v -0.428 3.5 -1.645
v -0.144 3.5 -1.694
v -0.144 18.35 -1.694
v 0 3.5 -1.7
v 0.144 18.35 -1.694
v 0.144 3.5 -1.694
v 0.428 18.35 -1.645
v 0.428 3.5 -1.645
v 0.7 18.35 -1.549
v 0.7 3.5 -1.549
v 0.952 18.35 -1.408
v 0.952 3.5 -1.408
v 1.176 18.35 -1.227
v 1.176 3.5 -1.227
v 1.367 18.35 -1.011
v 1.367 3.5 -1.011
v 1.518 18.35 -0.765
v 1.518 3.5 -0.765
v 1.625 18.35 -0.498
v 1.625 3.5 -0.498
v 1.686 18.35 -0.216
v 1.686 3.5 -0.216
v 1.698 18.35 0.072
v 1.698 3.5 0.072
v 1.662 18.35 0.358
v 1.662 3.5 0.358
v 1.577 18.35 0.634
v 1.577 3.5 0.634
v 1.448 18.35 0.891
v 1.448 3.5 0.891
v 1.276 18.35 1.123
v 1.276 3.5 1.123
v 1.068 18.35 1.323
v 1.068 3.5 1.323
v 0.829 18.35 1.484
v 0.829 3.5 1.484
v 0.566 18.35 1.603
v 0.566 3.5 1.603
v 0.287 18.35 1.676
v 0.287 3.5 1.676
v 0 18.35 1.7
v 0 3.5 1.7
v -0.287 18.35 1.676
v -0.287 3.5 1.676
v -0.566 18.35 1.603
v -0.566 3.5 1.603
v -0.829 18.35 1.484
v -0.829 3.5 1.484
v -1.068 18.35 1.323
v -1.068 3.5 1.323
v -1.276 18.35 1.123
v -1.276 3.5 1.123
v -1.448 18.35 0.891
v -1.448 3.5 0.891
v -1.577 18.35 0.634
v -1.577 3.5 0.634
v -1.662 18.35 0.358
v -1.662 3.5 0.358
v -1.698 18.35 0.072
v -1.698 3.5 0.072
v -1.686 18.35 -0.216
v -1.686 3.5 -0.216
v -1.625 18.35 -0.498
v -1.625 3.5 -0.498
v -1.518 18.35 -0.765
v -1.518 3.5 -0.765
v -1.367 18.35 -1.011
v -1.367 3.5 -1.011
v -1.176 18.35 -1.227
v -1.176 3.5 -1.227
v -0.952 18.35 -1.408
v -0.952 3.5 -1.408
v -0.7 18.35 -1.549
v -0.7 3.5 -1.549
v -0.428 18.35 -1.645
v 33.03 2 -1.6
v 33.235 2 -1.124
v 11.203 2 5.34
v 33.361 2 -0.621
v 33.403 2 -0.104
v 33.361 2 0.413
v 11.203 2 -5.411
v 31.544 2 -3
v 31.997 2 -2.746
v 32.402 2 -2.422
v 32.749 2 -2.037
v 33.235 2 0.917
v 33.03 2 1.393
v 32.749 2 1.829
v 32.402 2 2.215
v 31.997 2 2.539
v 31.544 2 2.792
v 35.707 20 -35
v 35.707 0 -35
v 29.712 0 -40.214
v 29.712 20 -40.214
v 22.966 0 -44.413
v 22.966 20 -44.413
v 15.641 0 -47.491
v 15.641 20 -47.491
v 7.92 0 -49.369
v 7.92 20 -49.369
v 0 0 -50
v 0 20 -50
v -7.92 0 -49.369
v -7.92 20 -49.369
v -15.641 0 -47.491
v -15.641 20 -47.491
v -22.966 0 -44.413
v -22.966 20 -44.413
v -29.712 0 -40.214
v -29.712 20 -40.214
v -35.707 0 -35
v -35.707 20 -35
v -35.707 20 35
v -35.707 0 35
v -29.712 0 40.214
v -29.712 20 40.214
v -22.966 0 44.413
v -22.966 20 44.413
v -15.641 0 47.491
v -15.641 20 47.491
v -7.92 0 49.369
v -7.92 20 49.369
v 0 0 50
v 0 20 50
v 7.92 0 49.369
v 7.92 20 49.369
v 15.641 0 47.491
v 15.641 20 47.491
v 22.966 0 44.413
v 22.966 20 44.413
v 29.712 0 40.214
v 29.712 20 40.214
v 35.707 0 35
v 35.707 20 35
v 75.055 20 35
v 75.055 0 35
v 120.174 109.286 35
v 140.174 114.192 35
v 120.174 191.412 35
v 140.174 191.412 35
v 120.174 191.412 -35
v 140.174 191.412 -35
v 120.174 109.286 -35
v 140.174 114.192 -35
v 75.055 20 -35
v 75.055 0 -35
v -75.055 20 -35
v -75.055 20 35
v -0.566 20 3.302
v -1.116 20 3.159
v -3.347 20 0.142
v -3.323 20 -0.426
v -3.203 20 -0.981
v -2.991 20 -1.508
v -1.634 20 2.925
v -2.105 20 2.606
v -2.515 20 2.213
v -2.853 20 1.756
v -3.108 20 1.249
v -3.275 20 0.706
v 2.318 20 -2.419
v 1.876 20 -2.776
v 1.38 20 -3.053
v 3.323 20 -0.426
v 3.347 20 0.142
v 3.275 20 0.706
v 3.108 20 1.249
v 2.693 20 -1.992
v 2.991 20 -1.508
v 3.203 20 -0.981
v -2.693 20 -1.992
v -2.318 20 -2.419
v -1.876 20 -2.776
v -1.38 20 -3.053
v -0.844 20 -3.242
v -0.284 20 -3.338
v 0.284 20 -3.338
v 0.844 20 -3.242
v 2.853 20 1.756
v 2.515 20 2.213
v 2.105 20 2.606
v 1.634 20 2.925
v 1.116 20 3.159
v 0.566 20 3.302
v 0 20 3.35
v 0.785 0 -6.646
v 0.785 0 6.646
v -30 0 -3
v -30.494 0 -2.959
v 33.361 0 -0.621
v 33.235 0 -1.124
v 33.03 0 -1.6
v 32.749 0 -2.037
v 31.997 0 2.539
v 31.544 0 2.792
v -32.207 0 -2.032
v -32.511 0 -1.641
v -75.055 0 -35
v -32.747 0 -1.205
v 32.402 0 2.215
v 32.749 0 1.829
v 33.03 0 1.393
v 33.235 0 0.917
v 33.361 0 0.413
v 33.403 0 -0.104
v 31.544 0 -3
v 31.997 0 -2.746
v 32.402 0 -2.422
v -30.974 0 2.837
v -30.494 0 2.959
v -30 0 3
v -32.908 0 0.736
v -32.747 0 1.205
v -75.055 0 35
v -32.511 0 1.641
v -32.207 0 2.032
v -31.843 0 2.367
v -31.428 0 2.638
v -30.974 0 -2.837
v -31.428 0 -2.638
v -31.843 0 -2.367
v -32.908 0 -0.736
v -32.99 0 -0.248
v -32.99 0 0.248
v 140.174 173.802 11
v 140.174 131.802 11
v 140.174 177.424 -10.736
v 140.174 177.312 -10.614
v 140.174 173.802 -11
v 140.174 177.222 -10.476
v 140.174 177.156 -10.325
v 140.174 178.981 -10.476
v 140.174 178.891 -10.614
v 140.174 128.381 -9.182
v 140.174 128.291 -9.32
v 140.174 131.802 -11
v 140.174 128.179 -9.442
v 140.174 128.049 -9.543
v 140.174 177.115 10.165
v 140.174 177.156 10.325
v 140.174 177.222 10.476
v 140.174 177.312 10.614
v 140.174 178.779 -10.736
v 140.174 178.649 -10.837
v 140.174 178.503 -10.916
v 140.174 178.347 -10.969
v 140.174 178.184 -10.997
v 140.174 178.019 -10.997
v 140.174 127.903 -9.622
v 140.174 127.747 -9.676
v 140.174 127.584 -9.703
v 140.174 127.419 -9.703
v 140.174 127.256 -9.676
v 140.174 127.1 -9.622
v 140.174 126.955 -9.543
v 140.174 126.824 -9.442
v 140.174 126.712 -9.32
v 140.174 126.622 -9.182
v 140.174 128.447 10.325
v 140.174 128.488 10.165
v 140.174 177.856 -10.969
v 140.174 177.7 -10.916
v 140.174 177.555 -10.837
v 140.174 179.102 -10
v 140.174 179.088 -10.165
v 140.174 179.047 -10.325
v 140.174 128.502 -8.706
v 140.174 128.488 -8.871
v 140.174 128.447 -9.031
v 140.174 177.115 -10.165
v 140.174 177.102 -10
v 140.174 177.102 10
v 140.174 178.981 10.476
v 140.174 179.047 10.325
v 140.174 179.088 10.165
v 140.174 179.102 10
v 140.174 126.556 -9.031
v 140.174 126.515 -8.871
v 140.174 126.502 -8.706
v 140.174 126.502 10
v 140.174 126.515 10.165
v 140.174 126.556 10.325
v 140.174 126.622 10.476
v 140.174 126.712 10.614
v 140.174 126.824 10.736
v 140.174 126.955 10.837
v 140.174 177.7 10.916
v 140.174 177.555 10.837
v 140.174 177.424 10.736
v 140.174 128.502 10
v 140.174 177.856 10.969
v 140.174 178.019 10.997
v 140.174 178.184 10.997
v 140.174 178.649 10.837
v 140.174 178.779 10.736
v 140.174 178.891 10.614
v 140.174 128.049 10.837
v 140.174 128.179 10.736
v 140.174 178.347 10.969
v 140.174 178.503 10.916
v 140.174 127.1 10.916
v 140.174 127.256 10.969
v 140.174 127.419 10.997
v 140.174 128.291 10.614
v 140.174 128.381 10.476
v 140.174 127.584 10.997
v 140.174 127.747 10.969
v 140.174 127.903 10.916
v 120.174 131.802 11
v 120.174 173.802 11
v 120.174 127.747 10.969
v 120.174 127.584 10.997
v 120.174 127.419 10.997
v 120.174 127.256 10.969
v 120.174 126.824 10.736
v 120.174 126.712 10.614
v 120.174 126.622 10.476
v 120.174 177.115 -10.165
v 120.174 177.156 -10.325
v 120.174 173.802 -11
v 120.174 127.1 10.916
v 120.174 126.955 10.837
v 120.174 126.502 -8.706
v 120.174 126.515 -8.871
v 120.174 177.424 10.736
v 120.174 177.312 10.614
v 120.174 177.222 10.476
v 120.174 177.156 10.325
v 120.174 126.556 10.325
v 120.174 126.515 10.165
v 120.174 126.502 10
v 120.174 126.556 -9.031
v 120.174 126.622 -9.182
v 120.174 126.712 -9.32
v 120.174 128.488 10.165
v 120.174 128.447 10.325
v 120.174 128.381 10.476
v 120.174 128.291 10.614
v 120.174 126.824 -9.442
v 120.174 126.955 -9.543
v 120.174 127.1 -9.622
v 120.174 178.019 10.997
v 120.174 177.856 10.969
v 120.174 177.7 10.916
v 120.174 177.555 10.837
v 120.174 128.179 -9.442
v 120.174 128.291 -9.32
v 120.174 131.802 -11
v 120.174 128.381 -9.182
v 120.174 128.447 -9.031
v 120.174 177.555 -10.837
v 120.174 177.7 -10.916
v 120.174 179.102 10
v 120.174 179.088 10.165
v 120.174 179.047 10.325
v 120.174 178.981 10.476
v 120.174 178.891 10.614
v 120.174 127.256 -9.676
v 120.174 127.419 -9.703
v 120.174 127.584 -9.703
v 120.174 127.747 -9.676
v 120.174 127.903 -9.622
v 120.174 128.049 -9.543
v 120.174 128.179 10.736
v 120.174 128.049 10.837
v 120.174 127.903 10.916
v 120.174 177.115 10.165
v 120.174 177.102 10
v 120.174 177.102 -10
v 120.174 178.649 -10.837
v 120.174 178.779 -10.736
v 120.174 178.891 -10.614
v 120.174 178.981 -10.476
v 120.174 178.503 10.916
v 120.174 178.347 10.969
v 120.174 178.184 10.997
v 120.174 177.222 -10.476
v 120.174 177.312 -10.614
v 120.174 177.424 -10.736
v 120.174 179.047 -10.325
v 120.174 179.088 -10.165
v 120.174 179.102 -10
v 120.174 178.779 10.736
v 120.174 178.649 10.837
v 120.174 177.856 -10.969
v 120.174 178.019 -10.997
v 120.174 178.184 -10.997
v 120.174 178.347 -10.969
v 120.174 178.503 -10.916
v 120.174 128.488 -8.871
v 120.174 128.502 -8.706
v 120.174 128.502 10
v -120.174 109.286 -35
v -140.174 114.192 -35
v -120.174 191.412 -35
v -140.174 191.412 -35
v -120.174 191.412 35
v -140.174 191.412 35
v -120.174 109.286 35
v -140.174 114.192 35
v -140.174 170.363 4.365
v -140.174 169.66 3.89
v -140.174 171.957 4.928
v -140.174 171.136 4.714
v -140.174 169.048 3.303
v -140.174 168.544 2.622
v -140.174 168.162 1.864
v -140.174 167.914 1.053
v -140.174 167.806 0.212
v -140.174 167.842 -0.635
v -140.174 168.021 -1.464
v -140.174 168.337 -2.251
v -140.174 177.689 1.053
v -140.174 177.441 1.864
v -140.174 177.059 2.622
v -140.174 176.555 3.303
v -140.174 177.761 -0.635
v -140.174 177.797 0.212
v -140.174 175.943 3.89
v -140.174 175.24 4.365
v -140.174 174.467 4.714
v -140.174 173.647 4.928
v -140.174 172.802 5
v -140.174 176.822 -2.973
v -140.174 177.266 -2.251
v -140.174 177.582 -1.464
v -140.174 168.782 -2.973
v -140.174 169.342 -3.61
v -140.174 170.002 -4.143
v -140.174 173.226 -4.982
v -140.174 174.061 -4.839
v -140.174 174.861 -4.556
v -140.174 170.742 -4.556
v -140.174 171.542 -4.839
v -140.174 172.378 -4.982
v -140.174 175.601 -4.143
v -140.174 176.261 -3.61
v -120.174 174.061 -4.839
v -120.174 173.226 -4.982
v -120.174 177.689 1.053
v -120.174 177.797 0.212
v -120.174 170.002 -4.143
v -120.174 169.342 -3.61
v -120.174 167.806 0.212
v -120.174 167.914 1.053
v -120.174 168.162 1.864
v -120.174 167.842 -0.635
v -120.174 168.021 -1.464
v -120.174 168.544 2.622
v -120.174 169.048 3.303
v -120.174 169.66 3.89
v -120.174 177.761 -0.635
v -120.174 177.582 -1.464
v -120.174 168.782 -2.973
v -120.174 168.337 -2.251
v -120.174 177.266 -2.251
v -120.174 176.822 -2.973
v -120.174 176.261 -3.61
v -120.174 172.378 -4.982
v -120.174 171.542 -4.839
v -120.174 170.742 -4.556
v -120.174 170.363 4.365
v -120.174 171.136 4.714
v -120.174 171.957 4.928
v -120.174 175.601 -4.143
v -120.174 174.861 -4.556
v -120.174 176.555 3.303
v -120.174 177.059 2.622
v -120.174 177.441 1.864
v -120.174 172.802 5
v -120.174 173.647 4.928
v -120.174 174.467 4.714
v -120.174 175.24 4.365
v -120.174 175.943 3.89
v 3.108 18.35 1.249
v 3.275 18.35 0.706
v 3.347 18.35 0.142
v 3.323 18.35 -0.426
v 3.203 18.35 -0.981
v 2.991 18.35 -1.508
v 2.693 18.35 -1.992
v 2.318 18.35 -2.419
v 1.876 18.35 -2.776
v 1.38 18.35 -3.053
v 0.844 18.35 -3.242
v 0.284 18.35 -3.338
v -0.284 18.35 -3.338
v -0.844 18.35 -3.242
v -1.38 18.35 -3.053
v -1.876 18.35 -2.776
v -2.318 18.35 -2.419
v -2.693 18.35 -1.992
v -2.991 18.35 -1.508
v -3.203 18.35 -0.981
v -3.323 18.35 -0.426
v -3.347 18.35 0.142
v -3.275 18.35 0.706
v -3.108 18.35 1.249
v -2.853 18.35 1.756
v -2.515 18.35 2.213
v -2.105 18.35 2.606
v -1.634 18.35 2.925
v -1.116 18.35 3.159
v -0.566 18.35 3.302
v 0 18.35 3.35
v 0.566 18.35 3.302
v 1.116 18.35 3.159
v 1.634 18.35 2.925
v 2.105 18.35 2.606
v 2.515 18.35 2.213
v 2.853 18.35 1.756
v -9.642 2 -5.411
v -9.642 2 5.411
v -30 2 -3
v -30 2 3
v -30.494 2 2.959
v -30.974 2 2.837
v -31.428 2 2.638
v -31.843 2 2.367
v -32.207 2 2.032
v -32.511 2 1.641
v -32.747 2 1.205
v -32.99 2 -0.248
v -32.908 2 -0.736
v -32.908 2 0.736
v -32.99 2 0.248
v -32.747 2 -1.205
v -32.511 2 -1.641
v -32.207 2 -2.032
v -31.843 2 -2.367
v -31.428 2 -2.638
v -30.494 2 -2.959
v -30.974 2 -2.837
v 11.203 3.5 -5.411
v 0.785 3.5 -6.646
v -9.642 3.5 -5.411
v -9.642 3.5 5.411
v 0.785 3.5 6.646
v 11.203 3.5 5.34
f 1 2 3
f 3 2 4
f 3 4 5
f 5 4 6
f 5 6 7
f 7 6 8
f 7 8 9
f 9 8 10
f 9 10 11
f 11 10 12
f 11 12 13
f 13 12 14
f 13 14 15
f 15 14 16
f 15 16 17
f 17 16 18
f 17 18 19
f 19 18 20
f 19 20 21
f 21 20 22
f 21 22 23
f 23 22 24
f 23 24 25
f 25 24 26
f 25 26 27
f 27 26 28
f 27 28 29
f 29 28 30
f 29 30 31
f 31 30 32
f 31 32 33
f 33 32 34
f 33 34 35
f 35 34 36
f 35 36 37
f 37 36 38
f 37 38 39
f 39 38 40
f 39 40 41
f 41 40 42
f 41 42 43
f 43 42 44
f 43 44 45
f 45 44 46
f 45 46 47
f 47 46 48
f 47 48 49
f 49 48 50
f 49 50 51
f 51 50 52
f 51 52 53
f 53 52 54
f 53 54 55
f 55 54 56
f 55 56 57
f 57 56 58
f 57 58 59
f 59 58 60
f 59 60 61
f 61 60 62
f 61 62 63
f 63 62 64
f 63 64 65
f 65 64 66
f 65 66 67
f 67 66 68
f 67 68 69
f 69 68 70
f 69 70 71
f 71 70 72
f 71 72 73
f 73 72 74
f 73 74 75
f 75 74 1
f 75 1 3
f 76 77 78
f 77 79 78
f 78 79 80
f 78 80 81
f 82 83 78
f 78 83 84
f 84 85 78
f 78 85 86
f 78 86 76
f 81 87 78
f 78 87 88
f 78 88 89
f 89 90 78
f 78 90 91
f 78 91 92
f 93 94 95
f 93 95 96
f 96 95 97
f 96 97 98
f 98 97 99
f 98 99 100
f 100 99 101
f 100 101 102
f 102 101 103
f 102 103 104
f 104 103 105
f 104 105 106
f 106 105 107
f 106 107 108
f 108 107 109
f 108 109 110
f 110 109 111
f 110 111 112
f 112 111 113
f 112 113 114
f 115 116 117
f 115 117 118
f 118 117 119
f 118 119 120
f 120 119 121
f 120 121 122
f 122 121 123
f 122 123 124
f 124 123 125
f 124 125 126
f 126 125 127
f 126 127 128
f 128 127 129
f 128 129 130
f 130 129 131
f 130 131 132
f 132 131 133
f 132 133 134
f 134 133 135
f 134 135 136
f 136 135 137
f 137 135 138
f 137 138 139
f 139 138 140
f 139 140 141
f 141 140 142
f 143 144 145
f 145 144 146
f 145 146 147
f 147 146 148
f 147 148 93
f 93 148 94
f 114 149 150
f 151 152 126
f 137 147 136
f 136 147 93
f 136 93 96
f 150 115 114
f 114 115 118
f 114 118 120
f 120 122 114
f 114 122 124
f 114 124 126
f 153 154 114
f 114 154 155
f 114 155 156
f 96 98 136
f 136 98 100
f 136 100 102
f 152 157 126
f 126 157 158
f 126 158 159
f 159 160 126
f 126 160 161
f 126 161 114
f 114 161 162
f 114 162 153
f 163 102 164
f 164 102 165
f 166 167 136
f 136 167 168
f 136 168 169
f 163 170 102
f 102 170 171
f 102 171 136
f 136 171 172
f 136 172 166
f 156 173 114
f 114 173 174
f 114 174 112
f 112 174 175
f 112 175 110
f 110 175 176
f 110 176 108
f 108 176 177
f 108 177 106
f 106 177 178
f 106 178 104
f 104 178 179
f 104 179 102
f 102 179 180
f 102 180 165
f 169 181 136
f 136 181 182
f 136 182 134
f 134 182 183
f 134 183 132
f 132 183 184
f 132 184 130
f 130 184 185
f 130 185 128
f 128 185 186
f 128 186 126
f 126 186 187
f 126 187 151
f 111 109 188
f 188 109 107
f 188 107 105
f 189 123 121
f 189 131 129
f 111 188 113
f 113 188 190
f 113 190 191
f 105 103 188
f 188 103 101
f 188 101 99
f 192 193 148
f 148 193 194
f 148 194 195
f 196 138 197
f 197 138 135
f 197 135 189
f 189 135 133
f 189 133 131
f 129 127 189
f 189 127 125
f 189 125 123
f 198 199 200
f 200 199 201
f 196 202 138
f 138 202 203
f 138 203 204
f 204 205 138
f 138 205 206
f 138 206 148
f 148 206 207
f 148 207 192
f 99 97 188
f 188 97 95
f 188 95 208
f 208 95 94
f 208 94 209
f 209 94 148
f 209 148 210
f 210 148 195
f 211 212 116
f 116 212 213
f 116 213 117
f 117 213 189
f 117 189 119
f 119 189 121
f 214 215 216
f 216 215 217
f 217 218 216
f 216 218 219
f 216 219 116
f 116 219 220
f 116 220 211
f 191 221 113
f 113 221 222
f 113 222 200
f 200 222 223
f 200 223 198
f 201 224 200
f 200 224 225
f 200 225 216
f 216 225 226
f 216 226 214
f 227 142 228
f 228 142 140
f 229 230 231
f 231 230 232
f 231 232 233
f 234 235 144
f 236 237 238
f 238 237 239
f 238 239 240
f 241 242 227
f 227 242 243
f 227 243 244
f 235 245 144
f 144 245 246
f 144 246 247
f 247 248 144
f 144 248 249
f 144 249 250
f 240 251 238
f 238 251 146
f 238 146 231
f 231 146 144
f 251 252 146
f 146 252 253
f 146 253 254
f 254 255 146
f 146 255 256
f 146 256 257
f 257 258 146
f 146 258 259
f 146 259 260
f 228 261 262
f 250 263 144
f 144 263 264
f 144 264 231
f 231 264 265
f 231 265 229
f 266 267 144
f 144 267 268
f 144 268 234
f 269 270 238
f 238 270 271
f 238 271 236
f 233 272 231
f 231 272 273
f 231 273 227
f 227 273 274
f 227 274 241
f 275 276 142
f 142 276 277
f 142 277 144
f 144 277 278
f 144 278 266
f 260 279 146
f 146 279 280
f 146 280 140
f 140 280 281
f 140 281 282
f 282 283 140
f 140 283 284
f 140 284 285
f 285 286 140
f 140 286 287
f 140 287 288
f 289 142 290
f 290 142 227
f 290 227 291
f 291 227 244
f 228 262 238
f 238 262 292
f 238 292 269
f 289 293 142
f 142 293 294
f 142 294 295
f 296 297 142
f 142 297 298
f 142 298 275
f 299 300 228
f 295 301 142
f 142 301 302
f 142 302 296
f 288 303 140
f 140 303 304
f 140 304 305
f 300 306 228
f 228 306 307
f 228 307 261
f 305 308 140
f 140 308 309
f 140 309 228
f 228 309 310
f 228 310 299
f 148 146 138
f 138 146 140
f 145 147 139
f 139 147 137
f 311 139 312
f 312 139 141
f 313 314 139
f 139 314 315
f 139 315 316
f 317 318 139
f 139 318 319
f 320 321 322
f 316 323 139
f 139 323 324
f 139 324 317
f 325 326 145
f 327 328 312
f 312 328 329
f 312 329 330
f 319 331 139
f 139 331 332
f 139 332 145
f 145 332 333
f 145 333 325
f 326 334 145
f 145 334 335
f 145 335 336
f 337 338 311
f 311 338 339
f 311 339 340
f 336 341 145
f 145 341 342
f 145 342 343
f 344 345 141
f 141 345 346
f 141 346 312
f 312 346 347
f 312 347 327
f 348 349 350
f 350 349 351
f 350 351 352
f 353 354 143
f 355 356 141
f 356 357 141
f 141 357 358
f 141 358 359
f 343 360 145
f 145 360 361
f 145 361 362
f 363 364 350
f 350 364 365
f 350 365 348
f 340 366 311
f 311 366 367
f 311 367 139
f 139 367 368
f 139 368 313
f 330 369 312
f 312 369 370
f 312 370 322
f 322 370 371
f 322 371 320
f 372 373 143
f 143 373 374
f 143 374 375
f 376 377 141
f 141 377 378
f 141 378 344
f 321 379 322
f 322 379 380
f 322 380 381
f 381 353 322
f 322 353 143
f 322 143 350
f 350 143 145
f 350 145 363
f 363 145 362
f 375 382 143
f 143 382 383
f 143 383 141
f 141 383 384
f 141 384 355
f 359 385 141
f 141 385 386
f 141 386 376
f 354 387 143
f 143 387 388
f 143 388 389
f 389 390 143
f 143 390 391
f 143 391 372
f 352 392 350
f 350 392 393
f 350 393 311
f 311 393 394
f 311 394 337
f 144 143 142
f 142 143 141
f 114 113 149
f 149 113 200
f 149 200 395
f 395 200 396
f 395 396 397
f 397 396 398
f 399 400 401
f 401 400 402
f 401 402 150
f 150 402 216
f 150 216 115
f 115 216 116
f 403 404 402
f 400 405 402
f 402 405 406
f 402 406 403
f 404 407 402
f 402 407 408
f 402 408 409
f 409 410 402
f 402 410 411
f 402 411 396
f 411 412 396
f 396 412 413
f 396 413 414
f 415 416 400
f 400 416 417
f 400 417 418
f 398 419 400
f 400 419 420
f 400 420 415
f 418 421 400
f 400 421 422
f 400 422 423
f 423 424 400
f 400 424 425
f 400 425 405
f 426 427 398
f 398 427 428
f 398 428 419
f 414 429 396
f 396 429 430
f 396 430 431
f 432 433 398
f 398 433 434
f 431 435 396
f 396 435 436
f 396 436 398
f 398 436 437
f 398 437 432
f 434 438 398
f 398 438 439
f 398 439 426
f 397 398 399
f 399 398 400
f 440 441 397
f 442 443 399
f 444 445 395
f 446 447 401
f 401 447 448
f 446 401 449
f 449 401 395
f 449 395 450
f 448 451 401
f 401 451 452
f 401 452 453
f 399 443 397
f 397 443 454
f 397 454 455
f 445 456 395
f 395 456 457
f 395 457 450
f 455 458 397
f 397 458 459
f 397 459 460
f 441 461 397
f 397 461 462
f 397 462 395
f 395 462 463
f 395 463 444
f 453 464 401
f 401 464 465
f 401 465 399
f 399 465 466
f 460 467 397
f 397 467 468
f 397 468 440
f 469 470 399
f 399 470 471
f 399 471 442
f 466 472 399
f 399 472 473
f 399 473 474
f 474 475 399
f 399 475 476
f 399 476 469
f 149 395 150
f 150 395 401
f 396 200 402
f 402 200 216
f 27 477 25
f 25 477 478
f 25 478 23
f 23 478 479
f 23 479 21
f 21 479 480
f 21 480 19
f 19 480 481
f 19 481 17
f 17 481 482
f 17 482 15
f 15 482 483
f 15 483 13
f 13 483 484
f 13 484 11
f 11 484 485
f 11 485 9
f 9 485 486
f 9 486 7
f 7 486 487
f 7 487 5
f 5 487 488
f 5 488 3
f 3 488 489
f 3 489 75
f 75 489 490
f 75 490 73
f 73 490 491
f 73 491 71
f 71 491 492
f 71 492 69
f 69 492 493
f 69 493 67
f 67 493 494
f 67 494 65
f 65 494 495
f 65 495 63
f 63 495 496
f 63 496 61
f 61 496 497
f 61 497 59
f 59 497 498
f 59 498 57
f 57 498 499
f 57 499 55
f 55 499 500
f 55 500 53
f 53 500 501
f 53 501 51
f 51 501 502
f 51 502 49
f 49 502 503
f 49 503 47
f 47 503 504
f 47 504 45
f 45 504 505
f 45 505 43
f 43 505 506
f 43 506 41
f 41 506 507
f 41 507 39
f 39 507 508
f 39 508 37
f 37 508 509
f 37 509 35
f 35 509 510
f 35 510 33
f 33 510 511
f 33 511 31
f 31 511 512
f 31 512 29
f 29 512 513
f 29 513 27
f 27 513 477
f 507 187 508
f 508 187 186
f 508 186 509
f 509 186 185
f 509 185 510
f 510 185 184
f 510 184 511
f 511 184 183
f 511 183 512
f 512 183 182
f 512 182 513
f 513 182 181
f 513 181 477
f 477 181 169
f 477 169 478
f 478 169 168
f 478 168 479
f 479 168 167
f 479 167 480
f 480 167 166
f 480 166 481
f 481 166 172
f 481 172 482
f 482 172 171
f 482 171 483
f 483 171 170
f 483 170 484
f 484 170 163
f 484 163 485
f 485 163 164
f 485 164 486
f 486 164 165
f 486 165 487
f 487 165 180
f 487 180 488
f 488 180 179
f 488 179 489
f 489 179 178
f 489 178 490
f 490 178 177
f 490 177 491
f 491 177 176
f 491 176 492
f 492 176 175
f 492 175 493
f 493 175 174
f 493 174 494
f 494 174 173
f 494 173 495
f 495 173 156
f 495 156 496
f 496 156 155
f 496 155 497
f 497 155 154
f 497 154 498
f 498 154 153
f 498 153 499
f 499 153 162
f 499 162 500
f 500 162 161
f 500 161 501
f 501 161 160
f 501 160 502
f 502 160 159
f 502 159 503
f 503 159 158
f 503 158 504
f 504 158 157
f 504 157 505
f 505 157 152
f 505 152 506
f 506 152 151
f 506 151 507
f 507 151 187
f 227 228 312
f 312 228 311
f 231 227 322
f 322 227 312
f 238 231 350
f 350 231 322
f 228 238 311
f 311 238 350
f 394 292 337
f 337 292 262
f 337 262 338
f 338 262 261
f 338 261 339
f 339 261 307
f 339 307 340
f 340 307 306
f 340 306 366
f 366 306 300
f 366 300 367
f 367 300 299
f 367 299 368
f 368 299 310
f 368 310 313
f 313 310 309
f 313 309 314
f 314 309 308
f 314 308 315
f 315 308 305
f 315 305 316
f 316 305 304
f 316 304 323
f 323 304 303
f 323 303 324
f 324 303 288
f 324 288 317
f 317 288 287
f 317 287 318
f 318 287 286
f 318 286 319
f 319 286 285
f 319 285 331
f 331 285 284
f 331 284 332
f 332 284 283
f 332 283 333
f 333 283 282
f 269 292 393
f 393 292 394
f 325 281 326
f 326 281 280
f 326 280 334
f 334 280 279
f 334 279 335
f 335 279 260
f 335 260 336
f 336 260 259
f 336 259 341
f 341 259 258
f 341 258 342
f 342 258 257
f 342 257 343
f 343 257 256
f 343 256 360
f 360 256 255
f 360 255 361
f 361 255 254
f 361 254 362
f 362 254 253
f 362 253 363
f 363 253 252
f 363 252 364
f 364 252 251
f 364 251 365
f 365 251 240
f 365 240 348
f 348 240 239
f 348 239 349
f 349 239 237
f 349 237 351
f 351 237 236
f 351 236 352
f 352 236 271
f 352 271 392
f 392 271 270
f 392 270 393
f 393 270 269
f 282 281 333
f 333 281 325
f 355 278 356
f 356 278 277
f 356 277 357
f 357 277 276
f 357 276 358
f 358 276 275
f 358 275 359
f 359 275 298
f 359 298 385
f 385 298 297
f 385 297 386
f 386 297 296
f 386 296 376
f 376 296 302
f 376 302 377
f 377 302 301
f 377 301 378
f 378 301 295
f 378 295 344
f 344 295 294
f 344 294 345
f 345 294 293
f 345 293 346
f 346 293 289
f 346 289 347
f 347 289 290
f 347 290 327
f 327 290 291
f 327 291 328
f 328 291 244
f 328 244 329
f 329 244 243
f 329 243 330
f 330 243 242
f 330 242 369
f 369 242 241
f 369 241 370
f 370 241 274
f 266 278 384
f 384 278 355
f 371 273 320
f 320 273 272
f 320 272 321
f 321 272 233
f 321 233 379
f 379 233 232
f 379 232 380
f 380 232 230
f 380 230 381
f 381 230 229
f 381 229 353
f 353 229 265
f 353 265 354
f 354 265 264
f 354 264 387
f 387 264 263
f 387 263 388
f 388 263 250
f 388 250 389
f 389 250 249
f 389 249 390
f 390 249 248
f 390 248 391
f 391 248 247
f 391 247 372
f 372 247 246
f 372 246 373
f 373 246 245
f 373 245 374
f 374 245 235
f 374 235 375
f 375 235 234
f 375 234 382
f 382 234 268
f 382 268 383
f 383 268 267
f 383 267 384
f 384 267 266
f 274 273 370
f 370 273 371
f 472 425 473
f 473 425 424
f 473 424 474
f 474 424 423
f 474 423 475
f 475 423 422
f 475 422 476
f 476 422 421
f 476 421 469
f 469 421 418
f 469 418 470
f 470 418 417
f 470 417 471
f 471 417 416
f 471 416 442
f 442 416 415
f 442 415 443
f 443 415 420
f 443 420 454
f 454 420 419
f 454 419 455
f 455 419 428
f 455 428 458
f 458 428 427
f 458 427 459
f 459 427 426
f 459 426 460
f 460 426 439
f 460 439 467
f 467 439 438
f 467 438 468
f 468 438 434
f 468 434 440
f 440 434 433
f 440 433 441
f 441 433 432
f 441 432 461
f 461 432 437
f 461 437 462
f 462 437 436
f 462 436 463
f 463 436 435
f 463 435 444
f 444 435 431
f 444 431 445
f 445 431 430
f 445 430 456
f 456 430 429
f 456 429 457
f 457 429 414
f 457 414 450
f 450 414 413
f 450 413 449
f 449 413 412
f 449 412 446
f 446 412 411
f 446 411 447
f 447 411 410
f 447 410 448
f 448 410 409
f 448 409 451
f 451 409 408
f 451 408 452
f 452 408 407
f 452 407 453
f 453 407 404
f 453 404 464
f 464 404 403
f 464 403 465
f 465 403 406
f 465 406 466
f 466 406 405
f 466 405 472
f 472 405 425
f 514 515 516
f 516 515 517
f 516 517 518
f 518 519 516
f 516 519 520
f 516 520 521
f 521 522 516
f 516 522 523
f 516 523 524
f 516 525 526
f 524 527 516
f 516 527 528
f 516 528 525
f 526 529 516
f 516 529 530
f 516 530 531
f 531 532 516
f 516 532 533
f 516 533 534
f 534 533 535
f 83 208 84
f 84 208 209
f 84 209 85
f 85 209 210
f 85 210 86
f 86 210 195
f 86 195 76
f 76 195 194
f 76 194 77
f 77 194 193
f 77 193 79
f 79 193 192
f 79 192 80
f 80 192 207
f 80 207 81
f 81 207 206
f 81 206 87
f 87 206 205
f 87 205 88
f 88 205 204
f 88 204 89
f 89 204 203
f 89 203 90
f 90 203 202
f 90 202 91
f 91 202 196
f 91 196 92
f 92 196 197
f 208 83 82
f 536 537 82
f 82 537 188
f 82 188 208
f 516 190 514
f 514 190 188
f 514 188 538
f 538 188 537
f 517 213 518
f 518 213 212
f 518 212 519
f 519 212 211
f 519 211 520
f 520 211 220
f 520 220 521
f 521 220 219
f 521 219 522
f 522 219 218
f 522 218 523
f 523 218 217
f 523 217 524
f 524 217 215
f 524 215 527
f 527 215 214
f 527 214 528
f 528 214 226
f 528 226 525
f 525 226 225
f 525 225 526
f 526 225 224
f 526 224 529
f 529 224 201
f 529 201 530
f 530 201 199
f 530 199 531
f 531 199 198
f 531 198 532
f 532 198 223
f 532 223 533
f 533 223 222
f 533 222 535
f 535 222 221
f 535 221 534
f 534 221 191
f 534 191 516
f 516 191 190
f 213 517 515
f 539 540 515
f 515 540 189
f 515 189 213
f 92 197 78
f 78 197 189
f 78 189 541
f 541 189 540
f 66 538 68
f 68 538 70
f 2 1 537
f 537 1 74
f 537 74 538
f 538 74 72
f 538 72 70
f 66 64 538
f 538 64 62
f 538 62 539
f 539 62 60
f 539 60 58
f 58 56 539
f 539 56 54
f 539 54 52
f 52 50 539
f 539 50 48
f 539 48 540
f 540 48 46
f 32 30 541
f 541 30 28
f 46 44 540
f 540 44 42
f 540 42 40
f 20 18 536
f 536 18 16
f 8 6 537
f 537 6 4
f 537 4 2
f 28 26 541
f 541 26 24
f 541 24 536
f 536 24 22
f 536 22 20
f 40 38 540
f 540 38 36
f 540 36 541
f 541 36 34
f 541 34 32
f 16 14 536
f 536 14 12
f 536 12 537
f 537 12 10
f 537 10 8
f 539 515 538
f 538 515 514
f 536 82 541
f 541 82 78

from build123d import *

# Parameters (mm, degrees)
EXTRUDE_1_DEPTH        = 20
EXTRUDE_2_DEPTH        = 70
F_1_4_BASE_D           = 3.4
F_1_4_BASE_CBORE_D     = 6.7
F_1_4_BASE_CBORE_DEPTH = 1.65
SKETCH_11_W            = 22
SKETCH_11_H            = 42
CUT_EXTRUDE_1_DEPTH    = 32
CUT_EXTRUDE_2_DEPTH    = 67
SKETCH_15_R            = 5
CUT_EXTRUDE_3_DEPTH    = 70
CUT_EXTRUDE_4_DEPTH    = 2
CUT_EXTRUDE_5_DEPTH    = 3.5


with BuildPart() as part:
    # 草图1 → 凸台-拉伸1 (new body)
    with BuildSketch(Plane(origin=(0, 0, 0), x_dir=(1, 0, 0), z_dir=(0, 1, 0))):
        with BuildLine():
            Line((75.055476805, 35), (35.707142143, 35))
            ThreePointArc((35.707142143, 35), (46.289075964, 18.902948088), (50, 0))
            ThreePointArc((50, 0), (46.289075964, -18.902948088), (35.707142143, -35))
            Line((35.707142143, -35), (75.055476805, -35))
            Line((75.055476805, -35), (75.055476805, 35))
        make_face()
        with BuildLine():
            Line((0.055476805, -35), (0.055476805, 35))
            Line((0.055476805, 35), (35.707142143, 35))
            ThreePointArc((35.707142143, 35), (-50, 0), (35.707142143, -35))
            Line((35.707142143, -35), (0.055476805, -35))
        make_face()
        with BuildLine():
            Line((35.707142143, 35), (0.055476805, 35))
            Line((0.055476805, 35), (0.055476805, -35))
            Line((0.055476805, -35), (35.707142143, -35))
            ThreePointArc((35.707142143, -35), (46.289075964, -18.902948088), (50, 0))
            ThreePointArc((50, 0), (46.289075964, 18.902948088), (35.707142143, 35))
        make_face()
    extrude_1 = extrude(amount=EXTRUDE_1_DEPTH)

    # 草图2 → 凸台-拉伸2 (add)
    with BuildSketch(Plane.XY.offset(35)):
        Polygon((75.055476805, 0), (140.174133177, 114.192122372), (140.174133177, 191.411564081), (120.174133177, 191.411564081), (120.174133177, 109.286292207), (75.055476805, 20), align=None)
    extrude_2 = extrude(amount=-EXTRUDE_2_DEPTH)

    # 镜向1: 凸台-拉伸1, 凸台-拉伸2 across plane
    add(extrude_1.mirror(Plane(origin=(0, 0, 0), x_dir=(0, 0, 1), z_dir=(1, 0, 0))))
    add(extrude_2.mirror(Plane(origin=(0, 0, 0), x_dir=(0, 0, 1), z_dir=(1, 0, 0))))

    # 1/4 六角头螺钉的柱形沉头孔base (through all)
    with Locations(Plane(origin=(0, 20, 0), x_dir=(1, 0, 0), z_dir=(0, 1, 0))):
        with Locations((0, 0)):
            CounterBoreHole(F_1_4_BASE_D / 2, F_1_4_BASE_CBORE_D / 2, F_1_4_BASE_CBORE_DEPTH)

    # 草图11 → 切除-拉伸1 (cut)
    with BuildSketch(Plane(origin=(140.174133177, 0, 0), x_dir=(0, 0, -1), z_dir=(1, 0, 0))):
        with Locations((0, 152.801564081)):
            Rectangle(SKETCH_11_W, SKETCH_11_H)
    extrude(amount=-CUT_EXTRUDE_1_DEPTH, mode=Mode.SUBTRACT)

    # 草图14 → 切除-拉伸2 (cut)
    with BuildSketch(Plane(origin=(140.174133177, 0, 0), x_dir=(0, 0, -1), z_dir=(1, 0, 0))):
        with BuildLine():
            Line((-10, 179.101564081), (10, 179.101564081))
            ThreePointArc((10, 179.101564081), (11, 178.101564081), (10, 177.101564081))
            Line((10, 177.101564081), (-10, 177.101564081))
            ThreePointArc((-10, 177.101564081), (-11, 178.101564081), (-10, 179.101564081))
        make_face()
        with BuildLine():
            Line((-10, 128.501564081), (8.706275956, 128.501564081))
            ThreePointArc((8.706275956, 128.501564081), (9.706275956, 127.501564081), (8.706275956, 126.501564081))
            Line((8.706275956, 126.501564081), (-10, 126.501564081))
            ThreePointArc((-10, 126.501564081), (-11, 127.501564081), (-10, 128.501564081))
        make_face()
    extrude(amount=-CUT_EXTRUDE_2_DEPTH, mode=Mode.SUBTRACT)

    # 草图15 → 切除-拉伸3 (cut)
    with BuildSketch(Plane.ZY.offset(140.174133177)):
        with Locations((0, 172.801564081)):
            Circle(SKETCH_15_R)
    extrude(amount=-CUT_EXTRUDE_3_DEPTH, mode=Mode.SUBTRACT)

    # 草图16 → 切除-拉伸4 (cut)
    with BuildSketch(Plane.XZ):
        with BuildLine():
            Line((-30, 3), (0.784894819, 6.64557965))
            Line((0.784894819, 6.64557965), (31.544487342, 2.792338441))
            ThreePointArc((31.544487342, 2.792338441), (33.403111228, -0.103830779), (31.544487342, -3))
            Line((31.544487342, -3), (0.784894819, -6.64557965))
            Line((0.784894819, -6.64557965), (-30, -3))
            ThreePointArc((-30, -3), (-33, 0), (-30, 3))
        make_face()
    extrude(amount=-CUT_EXTRUDE_4_DEPTH, mode=Mode.SUBTRACT)

    # 草图17 → 切除-拉伸5 (cut)
    with BuildSketch(Plane.XZ):
        Polygon((0.784894819, 6.64557965), (-9.642246975, 5.410786542), (-9.642246975, -5.410786542), (0.784894819, -6.64557965), (11.20346648, -5.410786542), (11.20346648, 5.340449563), align=None)
    extrude(amount=-CUT_EXTRUDE_5_DEPTH, mode=Mode.SUBTRACT)


solid = part.part
